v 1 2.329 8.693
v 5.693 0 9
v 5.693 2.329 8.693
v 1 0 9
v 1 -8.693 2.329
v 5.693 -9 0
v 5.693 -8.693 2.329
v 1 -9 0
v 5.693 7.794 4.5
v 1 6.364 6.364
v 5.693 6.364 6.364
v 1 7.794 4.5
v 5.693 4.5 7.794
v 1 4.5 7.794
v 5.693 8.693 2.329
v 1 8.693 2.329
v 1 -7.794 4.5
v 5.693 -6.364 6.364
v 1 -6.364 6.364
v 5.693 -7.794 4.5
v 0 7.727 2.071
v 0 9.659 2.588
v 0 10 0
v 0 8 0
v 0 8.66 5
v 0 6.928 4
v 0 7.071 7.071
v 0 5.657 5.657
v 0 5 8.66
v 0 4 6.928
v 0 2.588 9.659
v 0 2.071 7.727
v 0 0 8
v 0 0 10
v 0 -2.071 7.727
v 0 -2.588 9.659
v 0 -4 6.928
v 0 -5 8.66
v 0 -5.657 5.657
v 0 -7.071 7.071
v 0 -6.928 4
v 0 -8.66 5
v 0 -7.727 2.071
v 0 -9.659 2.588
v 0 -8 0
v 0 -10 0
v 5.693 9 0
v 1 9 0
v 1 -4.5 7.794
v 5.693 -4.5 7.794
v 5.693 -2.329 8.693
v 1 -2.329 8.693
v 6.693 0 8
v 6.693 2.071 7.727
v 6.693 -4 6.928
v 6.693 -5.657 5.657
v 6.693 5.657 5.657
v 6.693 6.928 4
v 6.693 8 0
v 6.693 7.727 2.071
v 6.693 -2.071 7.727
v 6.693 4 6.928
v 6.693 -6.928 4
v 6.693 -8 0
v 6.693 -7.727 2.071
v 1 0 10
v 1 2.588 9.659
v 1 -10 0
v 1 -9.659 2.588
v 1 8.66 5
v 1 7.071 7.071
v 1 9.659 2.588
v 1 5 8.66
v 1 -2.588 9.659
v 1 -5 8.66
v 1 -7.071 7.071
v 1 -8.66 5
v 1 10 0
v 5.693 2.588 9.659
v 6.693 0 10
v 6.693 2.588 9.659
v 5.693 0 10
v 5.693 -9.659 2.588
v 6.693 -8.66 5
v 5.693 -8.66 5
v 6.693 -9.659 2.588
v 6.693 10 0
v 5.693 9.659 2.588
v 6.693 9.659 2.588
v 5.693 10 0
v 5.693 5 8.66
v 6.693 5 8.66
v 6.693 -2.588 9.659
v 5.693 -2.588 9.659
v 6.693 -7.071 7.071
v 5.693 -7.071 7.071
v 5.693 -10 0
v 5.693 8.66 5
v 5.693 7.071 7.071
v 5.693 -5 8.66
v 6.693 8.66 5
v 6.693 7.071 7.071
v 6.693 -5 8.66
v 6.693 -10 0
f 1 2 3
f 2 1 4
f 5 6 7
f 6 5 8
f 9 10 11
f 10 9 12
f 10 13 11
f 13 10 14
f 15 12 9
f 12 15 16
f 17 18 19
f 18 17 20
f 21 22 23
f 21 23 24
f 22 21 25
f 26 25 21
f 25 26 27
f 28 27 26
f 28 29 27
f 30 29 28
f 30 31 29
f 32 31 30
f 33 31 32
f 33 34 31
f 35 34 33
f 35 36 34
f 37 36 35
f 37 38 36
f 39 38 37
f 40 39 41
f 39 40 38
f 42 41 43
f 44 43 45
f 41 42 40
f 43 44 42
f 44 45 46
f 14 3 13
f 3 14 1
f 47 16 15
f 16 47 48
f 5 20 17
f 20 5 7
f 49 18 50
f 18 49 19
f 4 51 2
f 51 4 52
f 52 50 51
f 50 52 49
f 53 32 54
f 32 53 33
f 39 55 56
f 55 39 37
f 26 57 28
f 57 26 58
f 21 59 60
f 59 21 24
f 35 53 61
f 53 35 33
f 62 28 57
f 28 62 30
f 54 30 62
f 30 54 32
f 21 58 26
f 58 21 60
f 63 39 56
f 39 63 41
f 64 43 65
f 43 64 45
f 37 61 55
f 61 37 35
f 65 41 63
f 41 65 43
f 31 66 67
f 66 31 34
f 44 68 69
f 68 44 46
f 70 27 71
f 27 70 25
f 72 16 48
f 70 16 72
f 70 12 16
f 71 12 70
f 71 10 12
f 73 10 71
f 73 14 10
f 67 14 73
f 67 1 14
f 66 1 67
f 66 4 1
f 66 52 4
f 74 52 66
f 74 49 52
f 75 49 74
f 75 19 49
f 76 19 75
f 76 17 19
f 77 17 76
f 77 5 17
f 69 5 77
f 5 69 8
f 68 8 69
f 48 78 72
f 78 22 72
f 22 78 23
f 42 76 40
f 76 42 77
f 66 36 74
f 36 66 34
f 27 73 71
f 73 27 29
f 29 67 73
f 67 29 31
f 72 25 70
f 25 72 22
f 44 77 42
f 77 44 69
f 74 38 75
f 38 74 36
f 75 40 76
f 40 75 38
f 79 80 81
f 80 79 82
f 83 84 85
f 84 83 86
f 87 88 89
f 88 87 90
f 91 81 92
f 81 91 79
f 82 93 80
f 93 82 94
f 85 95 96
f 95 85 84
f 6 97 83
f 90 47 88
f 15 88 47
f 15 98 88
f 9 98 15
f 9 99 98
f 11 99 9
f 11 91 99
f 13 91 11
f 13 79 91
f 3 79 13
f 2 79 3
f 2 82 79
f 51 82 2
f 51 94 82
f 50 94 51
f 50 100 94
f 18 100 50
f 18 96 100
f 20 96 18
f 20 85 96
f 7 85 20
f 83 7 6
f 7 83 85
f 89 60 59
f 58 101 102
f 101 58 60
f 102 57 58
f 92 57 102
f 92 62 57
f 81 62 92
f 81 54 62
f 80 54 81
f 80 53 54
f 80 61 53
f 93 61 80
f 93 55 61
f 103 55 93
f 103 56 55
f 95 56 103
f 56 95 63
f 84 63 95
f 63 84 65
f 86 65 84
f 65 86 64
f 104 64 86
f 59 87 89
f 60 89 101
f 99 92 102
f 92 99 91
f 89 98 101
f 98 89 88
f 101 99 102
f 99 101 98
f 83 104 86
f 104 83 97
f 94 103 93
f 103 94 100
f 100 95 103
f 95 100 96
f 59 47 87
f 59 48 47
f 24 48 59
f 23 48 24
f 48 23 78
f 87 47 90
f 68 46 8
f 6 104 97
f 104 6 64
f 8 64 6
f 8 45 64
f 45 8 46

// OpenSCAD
// file: ../build_environments.scad
// build_environments.scad: modules to build level sections
//

module pool(diameter=10.0, wall_height=2.0, step_width=3.0, connections=[])
{
    difference() {
        union() {
        difference() {
            cylinder(h=0.5,r1=diameter+step_width,r2=diameter+step_width,$fn=48);
            translate([0,0,-0.1])
                cylinder(h=0.7,r1=diameter,r2=diameter,$fn=48);
        }
        difference() {
            cylinder(h=wall_height,r1=diameter+step_width+1.0,r2=diameter+step_width+1.0,$fn=48);
            translate([0,0,-0.1])
                cylinder(h=wall_height+0.2,r1=diameter+step_width,r2=diameter+step_width,$fn=48);
        }
        }
    
        for (c = connections)
        {
            rotate([0,90,0]) {
                angle = atan2(c[1],c[0]);
                rotate([-angle,0,0]) {
                    cylinder(h=diameter+5.0,r1=c[2],r2=c[2],$fn=48);
                }
            }
        }
    }
}

module straight(length=10.0, width=2.0, dy1=0.0, dy2=0.0, dz=0.0)
{
    dims = [0, 0, 0, 0, 0, (dz/length)];
    matrix = [
        [ 1, dims[0], dims[1], 0 ],
        [ dims[2], 1, dims[4], 0 ],
        [ dims[5], dims[3], 1, 0 ],
        [ 0, 0, 0, 1 ]
    ];
    multmatrix(matrix)
    difference() {
        translate([dy1,0,0])
        union() {
            rotate([0,90,0]) {
                difference() {
                    cylinder(h=(length-dy1-dy2),r1=width+1.0,r2=width+1.0,$fn=24);
                    translate([0,0,-0.1])
                        cylinder(h=(length-dy1-dy2+0.2),r1=width,r2=width,$fn=24);
                }
                difference() {
                    cylinder(h=1.0,r1=width+2.0,r2=width+2.0,$fn=24);
                    translate([0,0,-0.1])
                        cylinder(h=1.2,r1=width,r2=width,$fn=24);
                }
                translate([0,0,(length-dy1-dy2)-1.0]) {
                    difference() {
                        cylinder(h=1.0,r1=width+2.0,r2=width+2.0,$fn=24);
                        translate([0,0,-0.1])
                            cylinder(h=1.2,r1=width,r2=width,$fn=24);
                    }
                }
            }
        }
        translate([0,0,-(2*width+4.0)/2])
            cube([3*length,3*length,2*width+4.0],center=true);
    }
}

module curve(p0=[0,0], center=[0,0], dir=1, angle=0.0, width=2.0)
{
    radius = sqrt((p0[0]-center[0])*(p0[0]-center[0]) + (p0[1]-center[1])*(p0[1]-center[1]));
    if (dir == 0) {
        difference() {
            rotate([0,0,-90])
            difference() {
                rotate_extrude(angle = angle, convexity = 10, $fn=32)
                    translate([radius, 0, 0])
                        circle(r = width+1.0,$fn=24);
                rotate([0,0,-1.0])
                    rotate_extrude(angle = angle+2.0, convexity = 10, $fn=32)
                        translate([radius, 0, 0])
                            circle(r = width,$fn=24);
            }
            translate([0,0,-(2*width+4.0)/2])
                cube([5*radius,5*radius,2*width+4.0],center=true);
        }
    }
    else {
        difference() {
            rotate([0,0,90])
            difference() {
                rotate_extrude(angle = -angle, convexity = 10, $fn=32)
                    translate([radius, 0, 0])
                        circle(r = width+1.0,$fn=24);
                rotate([0,0,1.0])
                    rotate_extrude(angle = -angle-2.0, convexity = 10, $fn=32)
                        translate([radius, 0, 0])
                            circle(r = width,$fn=24);
            }
            translate([0,0,-(2*width+4.0)/2])
                cube([5*radius,5*radius,2*width+4.0],center=true);
        }
    }

}

// test pool
//pool(diameter=12.0000, wall_height=3.0000, step_width=3.0000, connections=[[0.0000,-26.0000,2.0000], [23.6074,0.0000,2.0000]]);

// test straight, slope
//straight(length=26.0000, width=2.0000, dy1=11.8322, dy2=6.7082, dz=0.0000);
//straight(length=29.1549, width=12.0000, dy1=0.0000, dy2=0.0000, dz=-15.0000);

// test curve
//curve(p0=[23.6074, 0.0000], center=[23.6074, 5.0000], dir=0, angle=60.1011, width=2.0000);
//curve(p0=[33.6426, 12.4219], center=[37.9771, 9.9295], dir=1, angle=120.4627, width=2.0000);
// main file
use <../build_environments.scad>;
straight(length=6.6930, width=8.0000, dy1=0.0000, dy2=0.0000, dz=0.0000);
